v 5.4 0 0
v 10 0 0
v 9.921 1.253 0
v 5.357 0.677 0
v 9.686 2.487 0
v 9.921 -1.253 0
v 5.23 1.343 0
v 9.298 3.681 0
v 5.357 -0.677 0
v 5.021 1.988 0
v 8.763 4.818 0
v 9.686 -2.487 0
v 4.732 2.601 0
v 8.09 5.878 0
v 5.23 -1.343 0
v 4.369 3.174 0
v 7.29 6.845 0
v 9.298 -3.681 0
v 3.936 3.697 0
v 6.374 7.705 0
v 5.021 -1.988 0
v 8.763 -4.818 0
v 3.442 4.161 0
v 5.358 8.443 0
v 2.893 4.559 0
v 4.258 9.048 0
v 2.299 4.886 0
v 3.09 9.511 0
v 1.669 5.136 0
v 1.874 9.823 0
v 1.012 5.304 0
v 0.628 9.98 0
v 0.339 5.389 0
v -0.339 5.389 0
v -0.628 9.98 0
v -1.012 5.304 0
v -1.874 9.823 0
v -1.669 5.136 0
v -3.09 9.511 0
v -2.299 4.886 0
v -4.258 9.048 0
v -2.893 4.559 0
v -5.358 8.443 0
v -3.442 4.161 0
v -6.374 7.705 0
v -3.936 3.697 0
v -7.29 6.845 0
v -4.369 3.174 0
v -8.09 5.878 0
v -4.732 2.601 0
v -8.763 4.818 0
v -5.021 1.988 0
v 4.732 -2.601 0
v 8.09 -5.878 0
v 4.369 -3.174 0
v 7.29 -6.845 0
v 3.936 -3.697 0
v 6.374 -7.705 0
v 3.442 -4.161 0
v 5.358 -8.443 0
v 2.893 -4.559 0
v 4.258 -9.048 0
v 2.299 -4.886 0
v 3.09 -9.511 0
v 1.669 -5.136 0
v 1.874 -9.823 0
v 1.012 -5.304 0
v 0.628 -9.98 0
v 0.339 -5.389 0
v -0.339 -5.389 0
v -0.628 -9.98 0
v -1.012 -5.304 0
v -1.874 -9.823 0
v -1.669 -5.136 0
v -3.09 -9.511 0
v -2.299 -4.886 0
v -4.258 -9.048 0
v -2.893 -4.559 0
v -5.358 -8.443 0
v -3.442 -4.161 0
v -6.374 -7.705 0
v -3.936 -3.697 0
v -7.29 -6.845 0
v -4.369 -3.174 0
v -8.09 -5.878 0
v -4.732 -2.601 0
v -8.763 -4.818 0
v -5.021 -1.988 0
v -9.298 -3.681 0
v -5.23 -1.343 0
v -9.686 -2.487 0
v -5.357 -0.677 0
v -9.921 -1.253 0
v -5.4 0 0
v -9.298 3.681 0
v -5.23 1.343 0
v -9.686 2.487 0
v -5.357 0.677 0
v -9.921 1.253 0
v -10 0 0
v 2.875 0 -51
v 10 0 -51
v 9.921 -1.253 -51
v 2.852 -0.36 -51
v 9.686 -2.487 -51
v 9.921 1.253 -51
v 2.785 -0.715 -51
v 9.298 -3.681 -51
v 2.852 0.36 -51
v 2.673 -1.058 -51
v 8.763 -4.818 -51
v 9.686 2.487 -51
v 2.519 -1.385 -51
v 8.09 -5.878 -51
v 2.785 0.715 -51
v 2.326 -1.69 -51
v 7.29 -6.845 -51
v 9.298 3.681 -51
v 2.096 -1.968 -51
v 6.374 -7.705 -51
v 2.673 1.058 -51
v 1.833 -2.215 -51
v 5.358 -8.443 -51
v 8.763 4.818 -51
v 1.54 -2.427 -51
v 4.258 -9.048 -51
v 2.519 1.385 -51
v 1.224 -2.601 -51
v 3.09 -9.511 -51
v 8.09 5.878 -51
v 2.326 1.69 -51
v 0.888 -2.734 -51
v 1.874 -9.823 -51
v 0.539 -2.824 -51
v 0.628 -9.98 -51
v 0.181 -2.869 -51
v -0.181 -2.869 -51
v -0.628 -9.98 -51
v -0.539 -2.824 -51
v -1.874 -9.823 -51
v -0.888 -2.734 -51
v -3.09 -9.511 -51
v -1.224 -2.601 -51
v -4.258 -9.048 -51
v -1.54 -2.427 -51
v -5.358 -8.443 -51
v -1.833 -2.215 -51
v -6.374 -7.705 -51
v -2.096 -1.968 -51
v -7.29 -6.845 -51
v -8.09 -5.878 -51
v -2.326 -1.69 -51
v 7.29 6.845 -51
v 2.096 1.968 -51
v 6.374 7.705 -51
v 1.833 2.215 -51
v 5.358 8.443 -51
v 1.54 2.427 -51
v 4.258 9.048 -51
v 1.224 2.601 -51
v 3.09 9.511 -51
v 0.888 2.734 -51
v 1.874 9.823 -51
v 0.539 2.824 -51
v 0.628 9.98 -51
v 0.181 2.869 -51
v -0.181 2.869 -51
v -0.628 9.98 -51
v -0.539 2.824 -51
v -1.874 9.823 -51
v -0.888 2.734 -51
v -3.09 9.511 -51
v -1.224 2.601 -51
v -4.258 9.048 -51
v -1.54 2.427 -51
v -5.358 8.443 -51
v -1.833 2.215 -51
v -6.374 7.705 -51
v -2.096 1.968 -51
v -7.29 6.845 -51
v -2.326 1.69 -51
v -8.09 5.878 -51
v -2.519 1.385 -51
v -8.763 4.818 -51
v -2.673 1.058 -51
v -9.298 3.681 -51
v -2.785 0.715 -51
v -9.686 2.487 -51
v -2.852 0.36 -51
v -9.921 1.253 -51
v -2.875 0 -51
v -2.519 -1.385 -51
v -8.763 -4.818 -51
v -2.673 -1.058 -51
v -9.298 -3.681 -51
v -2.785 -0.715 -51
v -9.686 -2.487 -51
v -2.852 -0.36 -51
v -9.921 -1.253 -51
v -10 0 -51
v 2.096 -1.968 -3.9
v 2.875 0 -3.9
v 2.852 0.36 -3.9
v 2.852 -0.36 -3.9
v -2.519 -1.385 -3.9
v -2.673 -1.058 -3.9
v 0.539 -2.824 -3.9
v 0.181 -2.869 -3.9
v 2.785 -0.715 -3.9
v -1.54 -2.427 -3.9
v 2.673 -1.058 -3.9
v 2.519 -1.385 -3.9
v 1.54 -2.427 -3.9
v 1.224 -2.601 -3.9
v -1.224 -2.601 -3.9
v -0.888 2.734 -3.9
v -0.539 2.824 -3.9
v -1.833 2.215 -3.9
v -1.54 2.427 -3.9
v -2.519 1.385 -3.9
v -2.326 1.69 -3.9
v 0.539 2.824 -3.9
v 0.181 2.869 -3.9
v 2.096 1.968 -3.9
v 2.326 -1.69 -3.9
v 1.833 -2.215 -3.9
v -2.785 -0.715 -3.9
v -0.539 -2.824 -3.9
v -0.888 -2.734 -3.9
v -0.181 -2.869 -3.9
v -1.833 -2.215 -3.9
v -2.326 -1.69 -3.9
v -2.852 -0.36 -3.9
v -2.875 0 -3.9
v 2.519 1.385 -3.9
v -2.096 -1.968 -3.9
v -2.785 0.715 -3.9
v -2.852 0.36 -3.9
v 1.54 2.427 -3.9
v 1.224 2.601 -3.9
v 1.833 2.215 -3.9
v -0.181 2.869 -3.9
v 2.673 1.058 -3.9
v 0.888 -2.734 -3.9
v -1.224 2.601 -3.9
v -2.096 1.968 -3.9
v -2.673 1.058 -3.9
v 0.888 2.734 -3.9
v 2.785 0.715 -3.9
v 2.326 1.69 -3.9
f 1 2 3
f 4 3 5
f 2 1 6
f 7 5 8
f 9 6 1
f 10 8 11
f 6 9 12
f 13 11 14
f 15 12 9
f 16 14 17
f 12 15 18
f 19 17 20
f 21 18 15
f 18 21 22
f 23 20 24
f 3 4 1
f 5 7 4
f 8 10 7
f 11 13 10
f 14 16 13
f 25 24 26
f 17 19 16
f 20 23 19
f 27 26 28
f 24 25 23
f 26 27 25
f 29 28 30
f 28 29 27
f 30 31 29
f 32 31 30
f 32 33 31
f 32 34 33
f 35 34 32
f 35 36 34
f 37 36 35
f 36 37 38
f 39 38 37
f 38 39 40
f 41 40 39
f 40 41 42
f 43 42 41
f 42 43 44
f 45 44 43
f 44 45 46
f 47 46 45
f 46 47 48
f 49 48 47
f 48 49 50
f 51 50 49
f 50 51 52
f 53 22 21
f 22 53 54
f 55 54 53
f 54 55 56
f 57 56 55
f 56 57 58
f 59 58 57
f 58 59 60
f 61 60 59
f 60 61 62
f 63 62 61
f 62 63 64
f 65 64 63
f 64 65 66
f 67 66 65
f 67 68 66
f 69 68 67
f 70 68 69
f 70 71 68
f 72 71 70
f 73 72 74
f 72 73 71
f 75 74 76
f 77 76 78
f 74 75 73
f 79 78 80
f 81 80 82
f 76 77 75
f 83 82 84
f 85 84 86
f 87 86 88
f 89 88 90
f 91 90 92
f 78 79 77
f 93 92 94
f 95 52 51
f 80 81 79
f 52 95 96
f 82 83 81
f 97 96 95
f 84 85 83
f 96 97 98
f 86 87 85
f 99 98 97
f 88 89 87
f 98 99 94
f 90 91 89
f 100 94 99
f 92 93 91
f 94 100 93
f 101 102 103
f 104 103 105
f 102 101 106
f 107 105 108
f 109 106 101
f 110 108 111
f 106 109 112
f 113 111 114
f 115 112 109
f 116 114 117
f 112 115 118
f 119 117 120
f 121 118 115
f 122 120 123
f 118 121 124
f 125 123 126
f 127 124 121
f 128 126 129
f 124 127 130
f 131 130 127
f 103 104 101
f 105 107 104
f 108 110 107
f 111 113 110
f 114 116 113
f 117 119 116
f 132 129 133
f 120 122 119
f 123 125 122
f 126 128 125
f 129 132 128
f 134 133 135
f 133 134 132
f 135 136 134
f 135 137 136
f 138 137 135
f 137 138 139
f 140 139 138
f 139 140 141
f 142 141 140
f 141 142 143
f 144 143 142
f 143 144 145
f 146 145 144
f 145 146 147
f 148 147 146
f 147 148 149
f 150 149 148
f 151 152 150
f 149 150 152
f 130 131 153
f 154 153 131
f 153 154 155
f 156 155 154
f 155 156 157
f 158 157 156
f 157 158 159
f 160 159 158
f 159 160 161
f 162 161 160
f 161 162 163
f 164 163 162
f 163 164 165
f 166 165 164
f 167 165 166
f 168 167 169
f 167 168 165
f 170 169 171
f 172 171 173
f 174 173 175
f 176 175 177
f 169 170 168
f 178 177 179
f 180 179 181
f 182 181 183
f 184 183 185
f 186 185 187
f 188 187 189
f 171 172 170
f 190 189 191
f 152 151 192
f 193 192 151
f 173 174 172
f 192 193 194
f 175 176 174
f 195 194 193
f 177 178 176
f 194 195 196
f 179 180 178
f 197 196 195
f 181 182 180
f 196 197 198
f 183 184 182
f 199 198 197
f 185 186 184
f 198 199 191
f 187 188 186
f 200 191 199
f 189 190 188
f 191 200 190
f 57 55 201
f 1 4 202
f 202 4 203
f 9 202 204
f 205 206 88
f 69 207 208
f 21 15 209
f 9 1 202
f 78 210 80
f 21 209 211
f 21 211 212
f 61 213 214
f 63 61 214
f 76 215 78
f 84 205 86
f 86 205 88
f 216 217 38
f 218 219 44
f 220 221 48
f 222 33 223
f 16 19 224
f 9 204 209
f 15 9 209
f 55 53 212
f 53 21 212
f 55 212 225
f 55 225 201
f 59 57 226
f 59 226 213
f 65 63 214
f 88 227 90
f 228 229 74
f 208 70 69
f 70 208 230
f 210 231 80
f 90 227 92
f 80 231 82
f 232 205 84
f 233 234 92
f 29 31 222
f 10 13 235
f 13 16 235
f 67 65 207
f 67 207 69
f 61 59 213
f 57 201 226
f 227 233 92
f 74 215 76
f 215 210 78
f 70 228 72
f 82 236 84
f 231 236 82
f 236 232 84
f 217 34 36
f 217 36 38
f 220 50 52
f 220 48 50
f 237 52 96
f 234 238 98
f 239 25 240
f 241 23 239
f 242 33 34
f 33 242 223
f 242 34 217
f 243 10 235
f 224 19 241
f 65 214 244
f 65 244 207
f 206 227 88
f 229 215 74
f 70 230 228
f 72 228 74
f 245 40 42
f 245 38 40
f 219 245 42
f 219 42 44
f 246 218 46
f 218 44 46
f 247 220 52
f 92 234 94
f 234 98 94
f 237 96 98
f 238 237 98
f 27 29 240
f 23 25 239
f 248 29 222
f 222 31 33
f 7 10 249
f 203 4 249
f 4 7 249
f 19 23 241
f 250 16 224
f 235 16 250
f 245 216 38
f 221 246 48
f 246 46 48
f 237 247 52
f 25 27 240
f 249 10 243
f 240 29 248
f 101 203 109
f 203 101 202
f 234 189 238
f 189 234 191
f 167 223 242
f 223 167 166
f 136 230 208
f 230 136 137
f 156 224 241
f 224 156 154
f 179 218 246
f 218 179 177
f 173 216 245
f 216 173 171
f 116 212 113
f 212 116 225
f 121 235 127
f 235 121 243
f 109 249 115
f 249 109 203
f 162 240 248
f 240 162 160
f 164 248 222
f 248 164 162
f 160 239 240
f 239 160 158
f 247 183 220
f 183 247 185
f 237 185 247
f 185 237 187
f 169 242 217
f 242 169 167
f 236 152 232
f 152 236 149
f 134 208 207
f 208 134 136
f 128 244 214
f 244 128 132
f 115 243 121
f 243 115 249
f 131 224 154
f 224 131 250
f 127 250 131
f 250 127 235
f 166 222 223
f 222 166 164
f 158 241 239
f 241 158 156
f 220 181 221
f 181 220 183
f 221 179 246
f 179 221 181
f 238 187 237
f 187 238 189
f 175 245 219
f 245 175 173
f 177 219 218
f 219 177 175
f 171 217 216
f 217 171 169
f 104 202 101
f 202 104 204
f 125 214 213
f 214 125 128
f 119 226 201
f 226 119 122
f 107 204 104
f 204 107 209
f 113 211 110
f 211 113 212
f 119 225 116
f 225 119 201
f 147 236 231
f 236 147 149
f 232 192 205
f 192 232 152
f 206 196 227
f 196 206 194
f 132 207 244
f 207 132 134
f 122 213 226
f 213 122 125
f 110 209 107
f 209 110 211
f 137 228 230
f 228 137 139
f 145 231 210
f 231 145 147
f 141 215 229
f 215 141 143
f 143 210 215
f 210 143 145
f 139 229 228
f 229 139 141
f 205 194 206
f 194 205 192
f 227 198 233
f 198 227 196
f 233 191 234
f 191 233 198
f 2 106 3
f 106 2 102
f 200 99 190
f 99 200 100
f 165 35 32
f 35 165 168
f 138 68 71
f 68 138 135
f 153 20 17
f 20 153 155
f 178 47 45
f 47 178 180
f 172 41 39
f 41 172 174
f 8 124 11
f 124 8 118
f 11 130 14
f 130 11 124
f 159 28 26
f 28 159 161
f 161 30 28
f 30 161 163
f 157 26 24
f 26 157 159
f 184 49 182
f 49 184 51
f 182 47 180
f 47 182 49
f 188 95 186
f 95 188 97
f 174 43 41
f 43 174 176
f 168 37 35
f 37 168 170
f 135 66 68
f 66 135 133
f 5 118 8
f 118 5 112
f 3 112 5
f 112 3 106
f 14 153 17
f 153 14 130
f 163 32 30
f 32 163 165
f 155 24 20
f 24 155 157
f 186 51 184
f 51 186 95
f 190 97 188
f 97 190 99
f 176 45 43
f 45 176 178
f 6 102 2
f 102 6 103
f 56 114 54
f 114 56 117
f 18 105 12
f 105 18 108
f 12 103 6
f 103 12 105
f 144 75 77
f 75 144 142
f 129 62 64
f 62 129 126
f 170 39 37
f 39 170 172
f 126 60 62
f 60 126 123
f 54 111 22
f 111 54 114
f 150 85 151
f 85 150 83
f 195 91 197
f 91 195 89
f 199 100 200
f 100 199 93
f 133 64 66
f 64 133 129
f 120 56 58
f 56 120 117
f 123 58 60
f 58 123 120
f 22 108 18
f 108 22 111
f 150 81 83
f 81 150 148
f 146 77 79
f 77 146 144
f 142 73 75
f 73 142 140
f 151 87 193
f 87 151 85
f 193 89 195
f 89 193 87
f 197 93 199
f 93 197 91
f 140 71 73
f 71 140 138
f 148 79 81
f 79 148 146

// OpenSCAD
$fn = 50;


difference() {
	union() {
		translate(v = [0, 0, -51.0000000000]) {
			cylinder(h = 51, r = 10.0000000000);
		}
		cylinder(h = 0, r = 19.0000000000);
	}
	union() {
		translate(v = [0, 0, 0]) {
			rotate(a = [0, 0, 0]) {
				difference() {
					union() {
						#translate(v = [0, 0, -51.0000000000]) {
							cylinder(h = 51, r = 2.6000000000);
						}
						#translate(v = [0, 0, -3.9000000000]) {
							cylinder(h = 3.9000000000, r = 10.0000000000, r1 = 2.8750000000, r2 = 5.4000000000);
						}
						#translate(v = [0, 0, -51.0000000000]) {
							cylinder(h = 51, r = 2.8750000000);
						}
						#translate(v = [0, 0, -51.0000000000]) {
							cylinder(h = 51, r = 2.6000000000);
						}
					}
					union();
				}
			}
		}
	}
}
